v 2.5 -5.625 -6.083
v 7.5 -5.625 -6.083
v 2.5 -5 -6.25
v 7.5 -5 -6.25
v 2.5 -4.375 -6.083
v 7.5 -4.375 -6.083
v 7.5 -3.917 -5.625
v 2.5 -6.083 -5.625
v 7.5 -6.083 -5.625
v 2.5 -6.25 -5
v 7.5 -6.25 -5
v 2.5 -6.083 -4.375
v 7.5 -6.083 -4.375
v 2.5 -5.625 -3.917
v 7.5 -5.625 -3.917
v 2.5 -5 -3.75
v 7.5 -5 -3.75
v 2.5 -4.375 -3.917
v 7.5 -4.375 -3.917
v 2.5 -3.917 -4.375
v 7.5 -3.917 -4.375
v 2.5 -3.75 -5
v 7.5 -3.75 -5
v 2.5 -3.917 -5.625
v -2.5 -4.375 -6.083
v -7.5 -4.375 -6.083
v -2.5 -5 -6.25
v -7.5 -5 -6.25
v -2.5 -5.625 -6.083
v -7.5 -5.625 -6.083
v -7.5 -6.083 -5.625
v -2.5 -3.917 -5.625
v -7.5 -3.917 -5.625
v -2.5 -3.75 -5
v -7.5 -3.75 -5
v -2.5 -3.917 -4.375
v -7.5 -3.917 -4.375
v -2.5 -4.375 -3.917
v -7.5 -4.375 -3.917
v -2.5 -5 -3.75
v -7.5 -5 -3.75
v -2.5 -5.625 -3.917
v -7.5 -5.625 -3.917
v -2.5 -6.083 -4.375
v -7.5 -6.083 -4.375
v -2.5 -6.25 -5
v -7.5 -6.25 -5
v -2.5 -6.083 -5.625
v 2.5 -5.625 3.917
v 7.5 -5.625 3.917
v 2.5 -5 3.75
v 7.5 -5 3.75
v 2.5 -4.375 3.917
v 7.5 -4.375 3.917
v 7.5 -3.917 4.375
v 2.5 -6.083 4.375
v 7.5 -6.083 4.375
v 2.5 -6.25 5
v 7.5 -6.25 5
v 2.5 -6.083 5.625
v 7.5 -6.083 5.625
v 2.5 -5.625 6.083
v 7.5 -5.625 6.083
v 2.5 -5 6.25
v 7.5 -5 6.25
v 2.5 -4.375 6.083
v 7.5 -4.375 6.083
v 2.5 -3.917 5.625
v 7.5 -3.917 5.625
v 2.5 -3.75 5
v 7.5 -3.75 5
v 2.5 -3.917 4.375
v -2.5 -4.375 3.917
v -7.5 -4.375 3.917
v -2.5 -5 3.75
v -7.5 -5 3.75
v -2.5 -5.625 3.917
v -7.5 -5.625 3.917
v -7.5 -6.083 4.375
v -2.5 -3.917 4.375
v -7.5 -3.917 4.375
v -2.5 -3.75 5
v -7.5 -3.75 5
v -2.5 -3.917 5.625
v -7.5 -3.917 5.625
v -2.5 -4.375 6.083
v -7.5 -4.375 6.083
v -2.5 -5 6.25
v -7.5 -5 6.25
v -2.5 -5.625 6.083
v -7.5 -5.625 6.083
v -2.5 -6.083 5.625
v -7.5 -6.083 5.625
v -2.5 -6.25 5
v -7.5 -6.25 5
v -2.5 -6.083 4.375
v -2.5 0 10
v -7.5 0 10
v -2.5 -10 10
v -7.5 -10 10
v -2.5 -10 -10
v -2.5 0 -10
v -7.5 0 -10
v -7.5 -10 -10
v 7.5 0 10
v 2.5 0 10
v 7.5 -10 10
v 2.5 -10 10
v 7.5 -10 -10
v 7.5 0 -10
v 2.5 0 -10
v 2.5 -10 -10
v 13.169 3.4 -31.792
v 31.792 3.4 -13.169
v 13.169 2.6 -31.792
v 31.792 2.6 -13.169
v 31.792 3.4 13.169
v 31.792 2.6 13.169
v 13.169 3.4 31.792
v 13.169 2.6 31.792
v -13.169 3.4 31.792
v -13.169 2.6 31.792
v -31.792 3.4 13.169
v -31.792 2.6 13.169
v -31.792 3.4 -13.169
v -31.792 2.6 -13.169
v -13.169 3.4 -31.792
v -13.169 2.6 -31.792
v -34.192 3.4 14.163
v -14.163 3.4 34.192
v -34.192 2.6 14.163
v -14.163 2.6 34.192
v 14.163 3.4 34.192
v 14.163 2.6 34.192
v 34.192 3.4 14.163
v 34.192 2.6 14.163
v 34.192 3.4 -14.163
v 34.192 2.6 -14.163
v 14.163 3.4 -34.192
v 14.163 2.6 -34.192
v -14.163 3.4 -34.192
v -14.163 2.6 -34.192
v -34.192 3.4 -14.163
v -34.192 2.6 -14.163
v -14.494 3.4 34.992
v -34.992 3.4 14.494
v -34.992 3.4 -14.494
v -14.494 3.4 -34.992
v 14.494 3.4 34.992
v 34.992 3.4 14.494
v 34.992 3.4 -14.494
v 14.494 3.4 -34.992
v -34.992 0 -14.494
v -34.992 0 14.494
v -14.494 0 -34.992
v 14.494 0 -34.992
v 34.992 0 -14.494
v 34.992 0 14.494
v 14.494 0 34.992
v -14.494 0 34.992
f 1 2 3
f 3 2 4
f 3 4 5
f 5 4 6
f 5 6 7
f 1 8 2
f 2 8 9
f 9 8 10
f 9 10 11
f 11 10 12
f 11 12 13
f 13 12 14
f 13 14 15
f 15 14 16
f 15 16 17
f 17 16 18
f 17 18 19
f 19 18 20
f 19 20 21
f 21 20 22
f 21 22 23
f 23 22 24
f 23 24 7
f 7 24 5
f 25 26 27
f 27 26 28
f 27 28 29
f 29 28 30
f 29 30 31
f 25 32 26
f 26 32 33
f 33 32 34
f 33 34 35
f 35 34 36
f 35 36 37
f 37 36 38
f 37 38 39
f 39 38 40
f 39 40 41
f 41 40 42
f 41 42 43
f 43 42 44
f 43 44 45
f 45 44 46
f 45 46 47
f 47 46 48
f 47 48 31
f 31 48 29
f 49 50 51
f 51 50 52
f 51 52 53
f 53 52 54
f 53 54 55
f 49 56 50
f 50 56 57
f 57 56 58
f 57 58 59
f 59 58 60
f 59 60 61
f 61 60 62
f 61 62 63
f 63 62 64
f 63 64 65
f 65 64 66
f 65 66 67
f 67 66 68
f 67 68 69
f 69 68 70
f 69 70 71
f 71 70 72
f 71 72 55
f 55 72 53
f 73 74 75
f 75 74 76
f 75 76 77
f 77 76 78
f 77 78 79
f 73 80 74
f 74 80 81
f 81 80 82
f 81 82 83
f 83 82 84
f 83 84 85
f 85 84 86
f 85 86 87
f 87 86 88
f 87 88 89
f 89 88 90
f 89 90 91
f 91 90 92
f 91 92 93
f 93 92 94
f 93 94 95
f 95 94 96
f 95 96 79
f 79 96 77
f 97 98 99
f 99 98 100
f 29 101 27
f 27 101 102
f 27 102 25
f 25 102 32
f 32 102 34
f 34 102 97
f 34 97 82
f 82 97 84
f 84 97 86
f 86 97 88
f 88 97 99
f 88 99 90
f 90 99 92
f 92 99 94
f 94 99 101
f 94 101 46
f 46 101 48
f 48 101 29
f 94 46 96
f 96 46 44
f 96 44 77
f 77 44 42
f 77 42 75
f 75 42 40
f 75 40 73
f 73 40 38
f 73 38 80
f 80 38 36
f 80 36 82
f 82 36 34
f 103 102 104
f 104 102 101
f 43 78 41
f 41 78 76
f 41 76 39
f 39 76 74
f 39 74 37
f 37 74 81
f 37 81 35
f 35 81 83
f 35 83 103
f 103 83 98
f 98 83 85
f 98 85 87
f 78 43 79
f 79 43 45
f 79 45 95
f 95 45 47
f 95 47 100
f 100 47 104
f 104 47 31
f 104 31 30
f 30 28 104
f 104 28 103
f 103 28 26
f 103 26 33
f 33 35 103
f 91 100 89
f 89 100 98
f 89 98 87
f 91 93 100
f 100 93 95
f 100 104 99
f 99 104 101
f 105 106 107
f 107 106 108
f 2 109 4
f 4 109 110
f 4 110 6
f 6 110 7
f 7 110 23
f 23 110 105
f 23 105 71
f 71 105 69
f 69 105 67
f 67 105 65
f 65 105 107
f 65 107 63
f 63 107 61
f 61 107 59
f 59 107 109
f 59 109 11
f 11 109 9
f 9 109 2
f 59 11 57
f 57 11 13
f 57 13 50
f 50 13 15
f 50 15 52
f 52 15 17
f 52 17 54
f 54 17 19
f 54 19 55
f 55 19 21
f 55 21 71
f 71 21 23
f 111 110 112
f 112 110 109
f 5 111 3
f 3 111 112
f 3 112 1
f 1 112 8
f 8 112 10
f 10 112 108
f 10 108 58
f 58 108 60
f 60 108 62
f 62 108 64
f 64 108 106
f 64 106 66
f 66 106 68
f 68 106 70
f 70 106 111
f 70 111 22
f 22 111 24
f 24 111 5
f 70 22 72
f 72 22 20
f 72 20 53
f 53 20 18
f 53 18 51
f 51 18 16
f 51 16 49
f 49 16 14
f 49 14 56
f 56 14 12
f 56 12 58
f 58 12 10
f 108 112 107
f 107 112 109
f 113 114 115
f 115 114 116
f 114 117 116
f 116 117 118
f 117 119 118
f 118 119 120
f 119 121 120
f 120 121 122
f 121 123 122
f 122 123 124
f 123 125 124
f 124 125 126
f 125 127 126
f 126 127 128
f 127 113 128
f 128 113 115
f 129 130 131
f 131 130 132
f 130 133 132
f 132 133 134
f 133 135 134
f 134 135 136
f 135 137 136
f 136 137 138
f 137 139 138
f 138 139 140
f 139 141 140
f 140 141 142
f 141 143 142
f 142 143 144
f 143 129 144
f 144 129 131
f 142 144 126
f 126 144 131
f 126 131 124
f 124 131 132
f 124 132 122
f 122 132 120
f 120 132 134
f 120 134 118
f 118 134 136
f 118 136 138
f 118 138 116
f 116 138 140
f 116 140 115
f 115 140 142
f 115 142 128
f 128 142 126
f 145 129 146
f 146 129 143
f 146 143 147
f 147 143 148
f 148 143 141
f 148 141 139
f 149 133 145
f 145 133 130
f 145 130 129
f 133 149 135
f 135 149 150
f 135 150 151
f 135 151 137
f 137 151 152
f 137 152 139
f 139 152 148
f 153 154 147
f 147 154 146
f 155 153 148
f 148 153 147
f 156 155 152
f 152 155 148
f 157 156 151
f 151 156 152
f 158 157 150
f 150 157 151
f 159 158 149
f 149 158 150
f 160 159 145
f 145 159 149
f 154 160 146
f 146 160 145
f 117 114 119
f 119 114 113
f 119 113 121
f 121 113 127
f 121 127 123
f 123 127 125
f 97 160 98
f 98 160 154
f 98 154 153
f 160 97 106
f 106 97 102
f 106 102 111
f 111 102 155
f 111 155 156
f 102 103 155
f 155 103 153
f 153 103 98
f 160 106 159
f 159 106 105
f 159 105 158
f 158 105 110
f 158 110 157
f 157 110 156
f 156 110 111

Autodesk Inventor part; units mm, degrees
ref_plane "YZ Plane" through (0, 0, 0) normal (1, 0, 0) x (0, 1, 0)
ref_plane "XZ Plane" through (0, 0, 0) normal (0, 1, 0) x (-1, 0, 0)
ref_plane "XY Plane" through (0, 0, 0) normal (0, 0, 1) x (1, 0, 0)
sketch "스케치3" plane through (0, 0, 0) normal (0, 1, 0) x (-1, 0, 0)
  line L0 (34.9919, -14.4941) -> (14.4941, -34.9919)
  line L1 (14.4941, -34.9919) -> (-14.4941, -34.9919)
  line L2 (-14.4941, -34.9919) -> (-34.9919, -14.4941)
  line L3 (-34.9919, -14.4941) -> (-34.9919, 14.4941)
  line L4 (-34.9919, 14.4941) -> (-14.4941, 34.9919)
  line L5 (-14.4941, 34.9919) -> (14.4941, 34.9919)
  line L6 (14.4941, 34.9919) -> (34.9919, 14.4941)
  line L7 (34.9919, 14.4941) -> (34.9919, -14.4941)
  line L8 (13.5, -32.5919) -> (-13.5, -32.5919)
  line L9 (-13.5, -32.5919) -> (-32.5919, -13.5)
  line L10 (-32.5919, -13.5) -> (-32.5919, 13.5)
  line L11 (-32.5919, 13.5) -> (-13.5, 32.5919)
  line L12 (-13.5, 32.5919) -> (13.5, 32.5919)
  line L13 (13.5, 32.5919) -> (32.5919, 13.5)
  line L14 (32.5919, 13.5) -> (32.5919, -13.5)
  line L15 (32.5919, -13.5) -> (13.5, -32.5919)
  point P0 (0, 0)
  point P1 (0, 0)
  point P2 (0, 0)
  point P3 (0, 0)
  dimension "d66" = 27
  dimension "d67" = 2.4
extrude "돌출2" add sketch "스케치3" along normal blind 3.4 contours L0 L1 L2 L3 L4 L5 L6 L7 | L8 L9 L10 L11 L12 L13 L14 L15
sketch "스케치4" plane through (0, 3.4, 0) normal (0, 1, 0) x (1, 0, 0)
  line L0 (13.5, -32.5919) -> (-13.5, -32.5919)
  line L1 (-13.5, -32.5919) -> (-32.5919, -13.5)
  line L2 (-32.5919, -13.5) -> (-32.5919, 13.5)
  line L3 (-32.5919, 13.5) -> (-13.5, 32.5919)
  line L4 (-13.5, 32.5919) -> (13.5, 32.5919)
  line L5 (13.5, 32.5919) -> (32.5919, 13.5)
  line L6 (32.5919, 13.5) -> (32.5919, -13.5)
  line L7 (32.5919, -13.5) -> (13.5, -32.5919)
  line L8 (-14.1627, 34.1919) -> (14.1627, 34.1919)
  line L9 (14.1627, 34.1919) -> (34.1919, 14.1627)
  line L10 (34.1919, 14.1627) -> (34.1919, -14.1627)
  line L11 (34.1919, -14.1627) -> (14.1627, -34.1919)
  line L12 (14.1627, -34.1919) -> (-14.1627, -34.1919)
  line L13 (-14.1627, -34.1919) -> (-34.1919, -14.1627)
  line L14 (-34.1919, -14.1627) -> (-34.1919, 14.1627)
  line L15 (-34.1919, 14.1627) -> (-14.1627, 34.1919)
  line L16 (-13.1686, 31.7919) -> (13.1686, 31.7919)
  line L17 (13.1686, 31.7919) -> (31.7919, 13.1686)
  line L18 (31.7919, 13.1686) -> (31.7919, -13.1686)
  line L19 (31.7919, -13.1686) -> (13.1686, -31.7919)
  line L20 (13.1686, -31.7919) -> (-13.1686, -31.7919)
  line L21 (-13.1686, -31.7919) -> (-31.7919, -13.1686)
  line L22 (-31.7919, -13.1686) -> (-31.7919, 13.1686)
  line L23 (-31.7919, 13.1686) -> (-13.1686, 31.7919)
  point P0 (0, 0)
  point P1 (0, 0)
  point P2 (0, 0)
  point P3 (0, 0)
  dimension "d7" = 27
  dimension "d68" = 1.6
  dimension "d69" = 0.8
extrude "돌출3" cut sketch "스케치4" against normal blind 0.8 contours L0 L1 L2 L3 L4 L5 L6 L7 | L8 L9 L10 L11 L12 L13 L14 L15
sketch "스케치9" plane through (0, 0, 0) normal (0, -1, 0) x (1, 0, 0)
  line L0 (7.5, 10) -> (2.5, 10)
  line L1 (2.5, 10) -> (2.5, -10)
  line L2 (2.5, -10) -> (7.5, -10)
  line L3 (7.5, -10) -> (7.5, 10)
  line L4 (7.5, 10) -> (2.5, -10) construction
  line L5 (2.5, 10) -> (7.5, -10) construction
  line L6 (-2.5, 10) -> (-7.5, 10)
  line L7 (-7.5, 10) -> (-7.5, -10)
  line L8 (-7.5, -10) -> (-2.5, -10)
  line L9 (-2.5, 10) -> (-7.5, -10) construction
  line L10 (-7.5, 10) -> (-2.5, -10) construction
  line L11 (-2.5, -10) -> (-2.5, 10)
  point P0 (0, 0)
  point P1 (5, 0)
  point P2 (-5, 0)
  dimension "d42" = 20
  dimension "d43" = 5
  dimension "d44" = 2.5
  dimension "d47" = 10
extrude "돌출8" add sketch "스케치9" along normal blind 10
sketch "스케치10" plane through (-7.5, 0, -10) normal (-1, 0, 0) x (0, 0, 1)
  circle A0 centre (15, -5) radius 1.25
  line L0 (19.9591, 0) -> (0.0886, 0)
  line L1 (24.4941, 0) -> (-4.4941, 0) projected
  circle A1 centre (5, -5) radius 1.25
  line L2 (20, 0) -> (20, -10) projected
  point P0 (10, 0)
  dimension "d54" = 2.5
  dimension "d57" = 10
  dimension "d62" = 5
  dimension "d63" = 5
extrude "돌출9" cut sketch "스케치10" against normal blind 20
properties part number "팔각형 OV-PAM 5패턴 하단 - 틈 너비 수정"
